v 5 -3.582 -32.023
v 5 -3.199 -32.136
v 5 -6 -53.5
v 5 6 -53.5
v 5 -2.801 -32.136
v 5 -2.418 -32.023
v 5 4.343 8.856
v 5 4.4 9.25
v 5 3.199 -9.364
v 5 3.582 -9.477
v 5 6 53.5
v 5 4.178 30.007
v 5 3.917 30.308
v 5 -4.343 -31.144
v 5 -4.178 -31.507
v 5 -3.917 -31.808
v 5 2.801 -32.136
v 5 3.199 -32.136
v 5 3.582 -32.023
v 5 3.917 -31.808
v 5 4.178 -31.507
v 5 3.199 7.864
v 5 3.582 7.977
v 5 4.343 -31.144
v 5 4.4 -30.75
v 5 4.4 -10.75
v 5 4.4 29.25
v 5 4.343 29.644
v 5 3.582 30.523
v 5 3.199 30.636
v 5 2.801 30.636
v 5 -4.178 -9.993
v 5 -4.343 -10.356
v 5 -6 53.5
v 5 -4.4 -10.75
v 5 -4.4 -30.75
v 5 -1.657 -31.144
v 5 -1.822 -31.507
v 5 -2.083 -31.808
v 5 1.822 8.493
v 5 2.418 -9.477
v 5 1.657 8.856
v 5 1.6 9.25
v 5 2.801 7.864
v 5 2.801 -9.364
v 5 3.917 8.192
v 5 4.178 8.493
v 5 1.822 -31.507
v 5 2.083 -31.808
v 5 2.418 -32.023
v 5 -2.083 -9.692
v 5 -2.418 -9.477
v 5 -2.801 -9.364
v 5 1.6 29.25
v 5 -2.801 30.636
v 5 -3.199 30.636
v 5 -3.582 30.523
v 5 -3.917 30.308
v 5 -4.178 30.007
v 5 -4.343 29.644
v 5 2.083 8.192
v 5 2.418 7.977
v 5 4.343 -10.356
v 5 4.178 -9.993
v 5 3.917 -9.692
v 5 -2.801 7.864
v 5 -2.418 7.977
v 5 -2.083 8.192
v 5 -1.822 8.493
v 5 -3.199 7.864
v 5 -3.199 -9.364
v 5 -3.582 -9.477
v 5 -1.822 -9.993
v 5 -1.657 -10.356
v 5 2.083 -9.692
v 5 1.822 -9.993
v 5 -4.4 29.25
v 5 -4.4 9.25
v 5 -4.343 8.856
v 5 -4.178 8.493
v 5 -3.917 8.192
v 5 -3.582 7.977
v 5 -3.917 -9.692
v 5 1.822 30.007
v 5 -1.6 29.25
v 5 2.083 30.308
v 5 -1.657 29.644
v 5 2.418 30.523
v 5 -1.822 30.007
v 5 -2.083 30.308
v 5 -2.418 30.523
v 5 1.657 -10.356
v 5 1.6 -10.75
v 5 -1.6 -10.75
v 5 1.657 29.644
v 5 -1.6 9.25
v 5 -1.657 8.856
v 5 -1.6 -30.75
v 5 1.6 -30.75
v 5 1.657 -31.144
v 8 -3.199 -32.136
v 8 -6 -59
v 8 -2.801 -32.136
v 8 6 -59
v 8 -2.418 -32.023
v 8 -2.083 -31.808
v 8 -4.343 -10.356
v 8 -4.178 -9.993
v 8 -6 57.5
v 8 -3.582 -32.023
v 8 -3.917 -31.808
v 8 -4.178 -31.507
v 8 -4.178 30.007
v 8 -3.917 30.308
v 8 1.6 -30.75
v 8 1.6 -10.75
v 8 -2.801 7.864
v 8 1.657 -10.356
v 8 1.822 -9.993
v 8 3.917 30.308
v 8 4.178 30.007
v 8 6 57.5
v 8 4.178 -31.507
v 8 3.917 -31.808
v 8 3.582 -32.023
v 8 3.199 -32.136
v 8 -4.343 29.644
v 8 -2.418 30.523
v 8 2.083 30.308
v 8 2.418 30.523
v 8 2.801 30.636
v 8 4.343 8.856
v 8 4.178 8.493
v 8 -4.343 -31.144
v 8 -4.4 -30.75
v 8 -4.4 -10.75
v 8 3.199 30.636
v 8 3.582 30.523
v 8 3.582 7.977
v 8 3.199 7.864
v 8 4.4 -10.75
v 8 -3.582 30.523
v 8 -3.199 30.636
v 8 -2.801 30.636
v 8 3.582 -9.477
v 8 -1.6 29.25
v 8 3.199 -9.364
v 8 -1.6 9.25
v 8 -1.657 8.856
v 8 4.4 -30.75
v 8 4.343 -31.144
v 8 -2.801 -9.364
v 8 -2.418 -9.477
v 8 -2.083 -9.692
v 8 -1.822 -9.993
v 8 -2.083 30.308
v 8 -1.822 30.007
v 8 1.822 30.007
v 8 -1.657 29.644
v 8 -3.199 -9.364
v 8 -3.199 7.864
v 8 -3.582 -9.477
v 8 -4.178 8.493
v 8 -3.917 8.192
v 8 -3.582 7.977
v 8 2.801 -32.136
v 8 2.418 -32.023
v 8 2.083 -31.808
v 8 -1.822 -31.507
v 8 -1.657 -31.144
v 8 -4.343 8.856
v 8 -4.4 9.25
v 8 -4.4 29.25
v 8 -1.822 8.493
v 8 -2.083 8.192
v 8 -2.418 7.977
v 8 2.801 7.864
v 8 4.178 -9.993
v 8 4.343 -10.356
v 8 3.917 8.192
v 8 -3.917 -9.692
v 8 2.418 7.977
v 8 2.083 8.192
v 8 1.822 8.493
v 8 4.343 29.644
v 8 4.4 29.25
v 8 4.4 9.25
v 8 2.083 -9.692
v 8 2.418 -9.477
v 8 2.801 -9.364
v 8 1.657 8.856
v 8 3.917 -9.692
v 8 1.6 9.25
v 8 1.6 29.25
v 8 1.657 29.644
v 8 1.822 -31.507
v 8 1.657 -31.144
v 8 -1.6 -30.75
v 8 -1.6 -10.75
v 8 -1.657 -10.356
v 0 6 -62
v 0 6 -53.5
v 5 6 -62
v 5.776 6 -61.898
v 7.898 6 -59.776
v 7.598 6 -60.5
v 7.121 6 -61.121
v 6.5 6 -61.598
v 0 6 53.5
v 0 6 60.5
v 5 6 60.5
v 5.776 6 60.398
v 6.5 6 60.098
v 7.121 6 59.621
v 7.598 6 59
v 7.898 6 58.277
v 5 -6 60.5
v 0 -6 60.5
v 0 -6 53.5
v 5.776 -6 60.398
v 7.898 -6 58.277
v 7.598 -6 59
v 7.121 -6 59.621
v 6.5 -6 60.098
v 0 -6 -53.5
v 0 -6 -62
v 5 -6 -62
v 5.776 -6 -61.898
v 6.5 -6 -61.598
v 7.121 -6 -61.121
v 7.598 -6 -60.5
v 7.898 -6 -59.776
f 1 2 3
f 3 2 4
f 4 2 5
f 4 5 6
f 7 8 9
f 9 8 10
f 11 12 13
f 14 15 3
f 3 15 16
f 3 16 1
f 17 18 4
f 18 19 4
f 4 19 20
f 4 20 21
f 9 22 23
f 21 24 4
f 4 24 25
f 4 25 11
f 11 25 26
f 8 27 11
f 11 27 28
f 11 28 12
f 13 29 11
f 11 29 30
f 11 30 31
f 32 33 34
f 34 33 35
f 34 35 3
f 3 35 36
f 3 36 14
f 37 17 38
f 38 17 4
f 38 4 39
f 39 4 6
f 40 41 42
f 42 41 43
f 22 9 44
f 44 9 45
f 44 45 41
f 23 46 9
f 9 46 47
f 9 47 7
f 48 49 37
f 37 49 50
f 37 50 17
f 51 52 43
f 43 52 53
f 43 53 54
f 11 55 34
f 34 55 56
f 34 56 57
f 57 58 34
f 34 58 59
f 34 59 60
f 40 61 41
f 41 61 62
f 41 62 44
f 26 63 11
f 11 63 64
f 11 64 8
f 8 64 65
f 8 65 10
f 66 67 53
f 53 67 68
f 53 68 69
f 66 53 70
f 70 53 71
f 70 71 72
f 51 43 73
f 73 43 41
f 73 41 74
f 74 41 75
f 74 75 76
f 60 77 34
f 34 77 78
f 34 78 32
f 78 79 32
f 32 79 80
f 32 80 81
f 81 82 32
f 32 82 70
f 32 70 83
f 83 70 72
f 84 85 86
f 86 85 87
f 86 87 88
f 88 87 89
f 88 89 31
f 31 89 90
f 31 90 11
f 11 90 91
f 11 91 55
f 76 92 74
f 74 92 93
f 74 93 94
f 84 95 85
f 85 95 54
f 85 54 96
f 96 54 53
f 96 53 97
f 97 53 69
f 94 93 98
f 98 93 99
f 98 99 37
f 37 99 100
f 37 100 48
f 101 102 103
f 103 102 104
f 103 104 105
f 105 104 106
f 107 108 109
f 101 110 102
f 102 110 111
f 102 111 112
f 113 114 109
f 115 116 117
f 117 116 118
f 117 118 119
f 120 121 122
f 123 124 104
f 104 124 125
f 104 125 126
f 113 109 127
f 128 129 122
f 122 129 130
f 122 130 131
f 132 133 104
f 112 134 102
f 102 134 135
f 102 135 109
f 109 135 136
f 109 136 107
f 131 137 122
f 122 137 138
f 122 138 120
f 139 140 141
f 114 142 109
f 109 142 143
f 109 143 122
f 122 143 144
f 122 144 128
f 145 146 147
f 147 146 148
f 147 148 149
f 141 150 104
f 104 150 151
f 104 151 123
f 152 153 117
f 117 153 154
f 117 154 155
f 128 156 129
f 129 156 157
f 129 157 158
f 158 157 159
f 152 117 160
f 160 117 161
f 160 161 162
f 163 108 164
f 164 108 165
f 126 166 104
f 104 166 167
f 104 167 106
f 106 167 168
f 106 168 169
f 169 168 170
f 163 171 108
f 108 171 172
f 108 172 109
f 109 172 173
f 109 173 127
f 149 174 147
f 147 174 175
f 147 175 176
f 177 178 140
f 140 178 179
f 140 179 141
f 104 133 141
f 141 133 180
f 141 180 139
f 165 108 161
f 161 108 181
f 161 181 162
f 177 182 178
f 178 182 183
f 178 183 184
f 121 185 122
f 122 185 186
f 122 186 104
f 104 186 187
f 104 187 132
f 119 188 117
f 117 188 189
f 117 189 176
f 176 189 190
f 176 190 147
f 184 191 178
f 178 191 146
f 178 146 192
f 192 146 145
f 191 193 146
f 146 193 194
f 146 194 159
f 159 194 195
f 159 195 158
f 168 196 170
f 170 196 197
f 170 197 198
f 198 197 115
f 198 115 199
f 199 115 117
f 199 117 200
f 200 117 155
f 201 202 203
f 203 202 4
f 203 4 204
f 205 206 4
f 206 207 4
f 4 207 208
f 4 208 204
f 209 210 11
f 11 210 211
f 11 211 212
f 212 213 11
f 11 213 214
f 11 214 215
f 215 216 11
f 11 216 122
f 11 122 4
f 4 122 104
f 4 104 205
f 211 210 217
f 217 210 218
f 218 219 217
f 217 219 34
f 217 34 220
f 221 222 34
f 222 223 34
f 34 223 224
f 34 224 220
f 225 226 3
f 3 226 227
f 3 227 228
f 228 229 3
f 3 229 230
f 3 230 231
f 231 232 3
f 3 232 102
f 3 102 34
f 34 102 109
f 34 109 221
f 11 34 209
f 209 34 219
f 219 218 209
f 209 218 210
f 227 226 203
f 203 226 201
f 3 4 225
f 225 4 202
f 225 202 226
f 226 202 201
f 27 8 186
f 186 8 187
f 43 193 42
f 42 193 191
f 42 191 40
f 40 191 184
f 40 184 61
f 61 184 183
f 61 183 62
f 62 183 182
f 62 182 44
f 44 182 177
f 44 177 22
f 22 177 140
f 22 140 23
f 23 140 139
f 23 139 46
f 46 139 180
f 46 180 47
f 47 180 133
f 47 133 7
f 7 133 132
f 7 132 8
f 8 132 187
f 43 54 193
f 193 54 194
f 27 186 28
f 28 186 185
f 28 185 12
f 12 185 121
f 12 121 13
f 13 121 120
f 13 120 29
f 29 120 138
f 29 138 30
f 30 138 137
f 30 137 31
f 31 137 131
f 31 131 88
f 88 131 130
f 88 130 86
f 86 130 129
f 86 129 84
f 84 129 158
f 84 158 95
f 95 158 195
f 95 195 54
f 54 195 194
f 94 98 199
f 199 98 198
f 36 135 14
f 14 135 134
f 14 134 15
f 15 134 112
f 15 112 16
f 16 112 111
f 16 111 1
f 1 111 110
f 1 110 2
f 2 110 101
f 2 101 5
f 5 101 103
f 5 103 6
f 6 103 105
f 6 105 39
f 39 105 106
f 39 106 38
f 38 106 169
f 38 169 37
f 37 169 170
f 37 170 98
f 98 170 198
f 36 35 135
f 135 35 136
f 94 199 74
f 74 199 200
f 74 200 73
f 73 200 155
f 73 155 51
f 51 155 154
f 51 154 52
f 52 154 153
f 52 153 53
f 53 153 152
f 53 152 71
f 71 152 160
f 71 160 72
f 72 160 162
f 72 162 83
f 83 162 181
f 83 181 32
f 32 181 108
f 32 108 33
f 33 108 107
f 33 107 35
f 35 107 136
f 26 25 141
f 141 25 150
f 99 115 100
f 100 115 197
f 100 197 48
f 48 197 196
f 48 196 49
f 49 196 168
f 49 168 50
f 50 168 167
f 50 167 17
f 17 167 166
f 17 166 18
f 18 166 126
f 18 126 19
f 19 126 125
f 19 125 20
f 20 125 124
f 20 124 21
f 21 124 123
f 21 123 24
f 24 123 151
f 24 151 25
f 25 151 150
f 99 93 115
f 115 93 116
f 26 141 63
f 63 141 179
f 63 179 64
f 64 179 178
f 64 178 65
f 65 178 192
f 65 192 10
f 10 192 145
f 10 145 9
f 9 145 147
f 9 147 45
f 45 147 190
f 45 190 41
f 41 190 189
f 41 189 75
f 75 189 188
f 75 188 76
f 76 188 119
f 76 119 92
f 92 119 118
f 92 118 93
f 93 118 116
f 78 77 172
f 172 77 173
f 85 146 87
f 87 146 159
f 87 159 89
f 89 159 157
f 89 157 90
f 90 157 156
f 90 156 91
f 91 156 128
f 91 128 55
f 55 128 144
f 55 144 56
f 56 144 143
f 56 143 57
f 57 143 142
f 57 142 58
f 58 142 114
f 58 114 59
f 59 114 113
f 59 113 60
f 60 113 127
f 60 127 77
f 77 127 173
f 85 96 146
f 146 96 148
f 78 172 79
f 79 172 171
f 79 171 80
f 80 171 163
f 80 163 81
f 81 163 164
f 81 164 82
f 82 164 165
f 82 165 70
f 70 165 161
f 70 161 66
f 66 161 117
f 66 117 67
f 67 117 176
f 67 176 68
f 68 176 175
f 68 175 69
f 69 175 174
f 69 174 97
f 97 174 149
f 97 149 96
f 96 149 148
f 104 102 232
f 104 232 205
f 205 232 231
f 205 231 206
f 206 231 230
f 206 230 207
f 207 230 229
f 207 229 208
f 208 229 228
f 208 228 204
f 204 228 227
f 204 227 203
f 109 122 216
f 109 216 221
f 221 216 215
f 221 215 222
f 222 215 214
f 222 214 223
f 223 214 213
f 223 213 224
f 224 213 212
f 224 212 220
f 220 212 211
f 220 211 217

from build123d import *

# Parameters (mm, degrees)
SKETCH1_W             = 7
SKETCH1_H             = 12
BOSS_EXTRUDE1_DEPTH   = 5
SKETCH1_W_2           = 8.5
BOSS_EXTRUDE1_2_DEPTH = 5
SKETCH3_W             = 122.5
SKETCH3_H             = 12
BOSS_EXTRUDE2_DEPTH   = 3
SKETCH4_R             = 1.4
CUT_EXTRUDE1_DEPTH    = 3
FILLET1_R             = 3


with BuildPart() as part:
    # Sketch1 → Boss-Extrude1 (new body)
    with BuildSketch(Plane(origin=(0, 0, 0), x_dir=(0, 0, -1), z_dir=(1, 0, 0))):
        with Locations((-57, 0)):
            Rectangle(SKETCH1_W, SKETCH1_H)
    extrude(amount=BOSS_EXTRUDE1_DEPTH)



with BuildPart() as body_2:
    # Sketch1 → Boss-Extrude1 2 (new body)
    with BuildSketch(Plane(origin=(0, 0, 0), x_dir=(0, 0, -1), z_dir=(1, 0, 0))):
        with Locations((57.75, 0)):
            Rectangle(SKETCH1_W_2, SKETCH1_H)
    extrude(amount=BOSS_EXTRUDE1_2_DEPTH)


with BuildPart() as part_1:
    add(part.part)

    add(body_2.part)  # Boss-Extrude2 merges body 2
    # Sketch3 → Boss-Extrude2 (add)
    with BuildSketch(Plane(origin=(5, 0, 0), x_dir=(0, 0, -1), z_dir=(1, 0, 0))):
        with Locations((0.75, 0)):
            Rectangle(SKETCH3_W, SKETCH3_H)
    extrude(amount=BOSS_EXTRUDE2_DEPTH)

    # Sketch4 → Cut-Extrude1 (cut)
    with BuildSketch(Plane(origin=(8, 0, 0), x_dir=(0, 0, -1), z_dir=(1, 0, 0))):
        with BuildLine():
            Line((-19.25, 4.4), (-29.25, 4.4))
            ThreePointArc((-29.25, 4.4), (-30.65, 3), (-29.25, 1.6))
            Line((-29.25, 1.6), (-19.25, 1.6))
            ThreePointArc((-19.25, 1.6), (-20.65, 3), (-19.25, 4.4))
        make_face()
        with Locations((-19.25, 3)):
            Circle(SKETCH4_R)
        with BuildLine():
            Line((-9.25, 4.4), (-19.25, 4.4))
            ThreePointArc((-19.25, 4.4), (-18.260050506, 3.989949494), (-17.85, 3))
            ThreePointArc((-17.85, 3), (-18.260050506, 2.010050506), (-19.25, 1.6))
            Line((-19.25, 1.6), (-9.25, 1.6))
            ThreePointArc((-9.25, 1.6), (-7.85, 3), (-9.25, 4.4))
        make_face()
        with BuildLine():
            Line((-9.25, -1.6), (-19.250000006, -1.6))
            ThreePointArc((-19.250000006, -1.6), (-18.260050509, -2.010050504), (-17.85, -3))
            ThreePointArc((-17.85, -3), (-18.260050506, -3.989949494), (-19.25, -4.4))
            Line((-19.25, -4.4), (-9.25, -4.4))
            ThreePointArc((-9.25, -4.4), (-7.85, -3), (-9.25, -1.6))
        make_face()
        with Locations((-19.25, -3)):
            Circle(SKETCH4_R)
        with BuildLine():
            Line((-19.250000006, -1.6), (-29.25, -1.6))
            ThreePointArc((-29.25, -1.6), (-30.65, -3), (-29.25, -4.4))
            Line((-29.25, -4.4), (-19.25, -4.4))
            ThreePointArc((-19.25, -4.4), (-20.65, -3.000000003), (-19.250000006, -1.6))
        make_face()
        with BuildLine():
            Line((10.75, -4.4), (20.75, -4.4))
            ThreePointArc((20.75, -4.4), (19.35, -3), (20.75, -1.6))
            Line((20.75, -1.6), (10.75, -1.6))
            ThreePointArc((10.75, -1.6), (9.35, -3), (10.75, -4.4))
        make_face()
        with BuildLine():
            Line((10.75, 1.6), (20.75, 1.6))
            ThreePointArc((20.75, 1.6), (19.35, 2.999999987), (20.749999974, 4.4))
            Line((20.749999974, 4.4), (10.75, 4.4))
            ThreePointArc((10.75, 4.4), (9.35, 3), (10.75, 1.6))
        make_face()
        with Locations((20.75, 3)):
            Circle(SKETCH4_R)
        with BuildLine():
            Line((20.75, 1.6), (30.75, 1.6))
            ThreePointArc((30.75, 1.6), (32.15, 3), (30.75, 4.4))
            Line((30.75, 4.4), (20.749999974, 4.4))
            ThreePointArc((20.749999974, 4.4), (21.739949484, 3.989949503), (22.15, 3))
            ThreePointArc((22.15, 3), (21.739949494, 2.010050506), (20.75, 1.6))
        make_face()
        with BuildLine():
            Line((20.75, -4.4), (30.75, -4.4))
            ThreePointArc((30.75, -4.4), (32.15, -3), (30.75, -1.6))
            Line((30.75, -1.6), (20.75, -1.6))
            ThreePointArc((20.75, -1.6), (21.739949494, -2.010050506), (22.15, -3))
            ThreePointArc((22.15, -3), (21.739949494, -3.989949494), (20.75, -4.4))
        make_face()
        with Locations((20.75, -3)):
            Circle(SKETCH4_R)
    extrude(amount=-CUT_EXTRUDE1_DEPTH, mode=Mode.SUBTRACT)

    # Fillet1
    fillet1_edges = [part_1.edges().sort_by_distance(p)[0] for p in [
        (8, 0, 60.5),
        (8, 0, -62),
    ]]
    fillet(fillet1_edges, radius=FILLET1_R)


solid = part_1.part
